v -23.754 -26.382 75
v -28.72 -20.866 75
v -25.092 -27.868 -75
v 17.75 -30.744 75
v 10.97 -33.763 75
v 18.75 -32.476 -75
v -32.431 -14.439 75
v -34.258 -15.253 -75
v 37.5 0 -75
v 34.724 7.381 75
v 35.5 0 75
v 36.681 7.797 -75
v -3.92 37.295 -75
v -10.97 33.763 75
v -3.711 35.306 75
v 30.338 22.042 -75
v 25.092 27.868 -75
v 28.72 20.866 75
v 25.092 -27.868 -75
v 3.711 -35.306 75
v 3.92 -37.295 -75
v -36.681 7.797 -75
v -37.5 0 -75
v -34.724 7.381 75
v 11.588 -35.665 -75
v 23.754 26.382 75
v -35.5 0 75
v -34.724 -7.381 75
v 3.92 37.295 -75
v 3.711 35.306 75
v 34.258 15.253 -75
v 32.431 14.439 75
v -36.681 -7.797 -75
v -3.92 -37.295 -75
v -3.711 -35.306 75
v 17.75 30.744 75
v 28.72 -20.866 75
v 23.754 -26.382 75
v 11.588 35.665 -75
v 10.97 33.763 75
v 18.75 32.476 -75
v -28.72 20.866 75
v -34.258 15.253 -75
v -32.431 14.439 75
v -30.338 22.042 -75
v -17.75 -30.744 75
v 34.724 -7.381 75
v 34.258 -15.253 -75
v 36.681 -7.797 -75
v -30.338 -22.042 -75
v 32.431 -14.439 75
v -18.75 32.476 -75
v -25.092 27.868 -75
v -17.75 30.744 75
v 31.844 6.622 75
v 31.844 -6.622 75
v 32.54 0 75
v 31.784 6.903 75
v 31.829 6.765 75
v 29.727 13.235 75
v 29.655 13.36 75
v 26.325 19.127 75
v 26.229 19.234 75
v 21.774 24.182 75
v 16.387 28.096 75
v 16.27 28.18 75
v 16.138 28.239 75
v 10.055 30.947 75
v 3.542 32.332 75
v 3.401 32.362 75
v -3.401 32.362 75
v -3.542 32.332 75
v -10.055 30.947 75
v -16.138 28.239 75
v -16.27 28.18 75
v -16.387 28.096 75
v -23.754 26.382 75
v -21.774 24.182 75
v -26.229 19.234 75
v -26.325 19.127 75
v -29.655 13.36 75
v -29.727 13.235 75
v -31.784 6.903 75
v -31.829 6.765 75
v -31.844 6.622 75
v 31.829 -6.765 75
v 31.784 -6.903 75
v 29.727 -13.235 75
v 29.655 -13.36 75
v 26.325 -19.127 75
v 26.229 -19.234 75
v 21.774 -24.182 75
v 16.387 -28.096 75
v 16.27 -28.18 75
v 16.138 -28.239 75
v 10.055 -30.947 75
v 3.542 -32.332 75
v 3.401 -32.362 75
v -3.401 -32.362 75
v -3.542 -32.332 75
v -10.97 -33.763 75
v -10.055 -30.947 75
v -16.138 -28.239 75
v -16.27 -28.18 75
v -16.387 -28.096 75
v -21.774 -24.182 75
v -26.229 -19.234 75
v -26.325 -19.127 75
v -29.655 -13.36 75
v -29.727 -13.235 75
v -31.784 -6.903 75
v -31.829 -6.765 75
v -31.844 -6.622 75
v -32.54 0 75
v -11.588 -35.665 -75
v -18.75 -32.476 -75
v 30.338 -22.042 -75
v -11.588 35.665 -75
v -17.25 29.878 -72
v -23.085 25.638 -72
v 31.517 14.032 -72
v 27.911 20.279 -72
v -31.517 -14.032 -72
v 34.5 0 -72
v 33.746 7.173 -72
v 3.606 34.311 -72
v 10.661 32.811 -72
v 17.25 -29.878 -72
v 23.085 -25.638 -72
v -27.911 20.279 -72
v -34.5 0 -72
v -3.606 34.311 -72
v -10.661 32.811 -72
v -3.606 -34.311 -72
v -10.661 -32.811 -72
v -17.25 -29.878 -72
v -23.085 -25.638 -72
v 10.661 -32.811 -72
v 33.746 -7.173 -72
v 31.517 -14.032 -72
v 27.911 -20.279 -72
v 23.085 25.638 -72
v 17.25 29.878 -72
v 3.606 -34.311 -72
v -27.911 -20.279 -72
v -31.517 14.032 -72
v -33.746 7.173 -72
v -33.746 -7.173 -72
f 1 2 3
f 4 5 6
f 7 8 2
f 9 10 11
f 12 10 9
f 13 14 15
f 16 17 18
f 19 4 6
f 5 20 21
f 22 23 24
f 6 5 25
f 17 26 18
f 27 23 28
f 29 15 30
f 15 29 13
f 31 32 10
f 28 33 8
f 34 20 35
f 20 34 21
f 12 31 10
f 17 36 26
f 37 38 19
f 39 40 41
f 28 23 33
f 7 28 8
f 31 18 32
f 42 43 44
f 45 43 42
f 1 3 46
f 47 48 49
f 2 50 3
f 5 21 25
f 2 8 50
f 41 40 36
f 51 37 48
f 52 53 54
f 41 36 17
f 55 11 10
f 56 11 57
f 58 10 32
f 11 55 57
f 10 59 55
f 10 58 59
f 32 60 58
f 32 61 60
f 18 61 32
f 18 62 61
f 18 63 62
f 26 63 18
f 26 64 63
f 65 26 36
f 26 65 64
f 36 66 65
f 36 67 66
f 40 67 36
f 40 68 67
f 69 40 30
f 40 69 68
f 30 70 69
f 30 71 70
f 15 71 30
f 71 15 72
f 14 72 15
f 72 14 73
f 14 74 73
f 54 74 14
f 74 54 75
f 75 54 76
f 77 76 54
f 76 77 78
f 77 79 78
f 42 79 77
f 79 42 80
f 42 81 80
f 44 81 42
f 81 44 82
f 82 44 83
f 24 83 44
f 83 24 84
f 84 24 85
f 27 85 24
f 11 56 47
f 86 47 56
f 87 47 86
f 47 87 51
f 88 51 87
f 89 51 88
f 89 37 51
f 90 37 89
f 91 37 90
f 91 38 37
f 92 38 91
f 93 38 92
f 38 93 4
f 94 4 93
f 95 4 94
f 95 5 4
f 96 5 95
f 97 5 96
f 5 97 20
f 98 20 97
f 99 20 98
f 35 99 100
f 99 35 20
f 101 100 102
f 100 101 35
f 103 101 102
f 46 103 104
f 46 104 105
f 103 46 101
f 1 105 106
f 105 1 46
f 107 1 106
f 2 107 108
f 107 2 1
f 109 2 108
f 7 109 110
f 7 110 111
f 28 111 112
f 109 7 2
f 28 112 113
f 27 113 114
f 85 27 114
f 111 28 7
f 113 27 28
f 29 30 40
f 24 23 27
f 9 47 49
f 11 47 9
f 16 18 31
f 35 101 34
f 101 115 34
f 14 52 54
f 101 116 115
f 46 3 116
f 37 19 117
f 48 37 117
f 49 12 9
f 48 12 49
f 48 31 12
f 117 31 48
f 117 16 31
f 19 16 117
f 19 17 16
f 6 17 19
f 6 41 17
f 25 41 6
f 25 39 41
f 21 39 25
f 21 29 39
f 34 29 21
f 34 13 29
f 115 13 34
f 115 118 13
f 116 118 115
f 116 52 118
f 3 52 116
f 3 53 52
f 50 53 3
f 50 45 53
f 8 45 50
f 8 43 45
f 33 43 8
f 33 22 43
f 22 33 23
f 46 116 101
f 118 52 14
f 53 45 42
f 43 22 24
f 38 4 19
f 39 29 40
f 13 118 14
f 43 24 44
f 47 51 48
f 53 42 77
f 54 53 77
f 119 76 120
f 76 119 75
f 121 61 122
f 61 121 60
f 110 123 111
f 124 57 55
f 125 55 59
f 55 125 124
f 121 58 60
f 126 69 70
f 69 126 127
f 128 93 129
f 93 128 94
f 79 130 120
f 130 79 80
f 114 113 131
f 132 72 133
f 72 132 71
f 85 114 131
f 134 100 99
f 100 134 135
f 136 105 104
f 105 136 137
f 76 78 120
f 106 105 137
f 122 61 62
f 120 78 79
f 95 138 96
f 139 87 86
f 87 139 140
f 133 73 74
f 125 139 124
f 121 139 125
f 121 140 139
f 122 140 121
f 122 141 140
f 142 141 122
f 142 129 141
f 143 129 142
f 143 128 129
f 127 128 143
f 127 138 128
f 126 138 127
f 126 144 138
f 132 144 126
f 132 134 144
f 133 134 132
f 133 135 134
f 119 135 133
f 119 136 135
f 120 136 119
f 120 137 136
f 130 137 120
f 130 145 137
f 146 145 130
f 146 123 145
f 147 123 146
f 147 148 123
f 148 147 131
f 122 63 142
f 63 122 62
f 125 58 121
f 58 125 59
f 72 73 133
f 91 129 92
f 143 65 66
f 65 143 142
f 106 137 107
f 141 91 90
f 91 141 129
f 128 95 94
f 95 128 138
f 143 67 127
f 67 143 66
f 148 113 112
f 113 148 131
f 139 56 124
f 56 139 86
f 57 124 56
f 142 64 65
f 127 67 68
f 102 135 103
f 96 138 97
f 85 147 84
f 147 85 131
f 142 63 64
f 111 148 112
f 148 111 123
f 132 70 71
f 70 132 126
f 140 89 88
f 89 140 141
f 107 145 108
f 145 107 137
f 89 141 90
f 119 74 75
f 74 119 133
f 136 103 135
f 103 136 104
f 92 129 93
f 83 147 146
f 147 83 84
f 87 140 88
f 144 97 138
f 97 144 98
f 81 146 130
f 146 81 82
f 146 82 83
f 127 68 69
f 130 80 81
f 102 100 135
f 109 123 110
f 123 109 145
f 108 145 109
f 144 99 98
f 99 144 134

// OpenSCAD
// https://item.rakuten.co.jp/livingut/4903208027694/


difference() {
    // outer cylinder
    cylinder(h = 150, r1=37.5, r2=35.5, center = true);
    // inner cylinder
    translate([0,0,3]){
    cylinder(h = 150, r1=34.5, r2=32.5, center = true);
    }
}
